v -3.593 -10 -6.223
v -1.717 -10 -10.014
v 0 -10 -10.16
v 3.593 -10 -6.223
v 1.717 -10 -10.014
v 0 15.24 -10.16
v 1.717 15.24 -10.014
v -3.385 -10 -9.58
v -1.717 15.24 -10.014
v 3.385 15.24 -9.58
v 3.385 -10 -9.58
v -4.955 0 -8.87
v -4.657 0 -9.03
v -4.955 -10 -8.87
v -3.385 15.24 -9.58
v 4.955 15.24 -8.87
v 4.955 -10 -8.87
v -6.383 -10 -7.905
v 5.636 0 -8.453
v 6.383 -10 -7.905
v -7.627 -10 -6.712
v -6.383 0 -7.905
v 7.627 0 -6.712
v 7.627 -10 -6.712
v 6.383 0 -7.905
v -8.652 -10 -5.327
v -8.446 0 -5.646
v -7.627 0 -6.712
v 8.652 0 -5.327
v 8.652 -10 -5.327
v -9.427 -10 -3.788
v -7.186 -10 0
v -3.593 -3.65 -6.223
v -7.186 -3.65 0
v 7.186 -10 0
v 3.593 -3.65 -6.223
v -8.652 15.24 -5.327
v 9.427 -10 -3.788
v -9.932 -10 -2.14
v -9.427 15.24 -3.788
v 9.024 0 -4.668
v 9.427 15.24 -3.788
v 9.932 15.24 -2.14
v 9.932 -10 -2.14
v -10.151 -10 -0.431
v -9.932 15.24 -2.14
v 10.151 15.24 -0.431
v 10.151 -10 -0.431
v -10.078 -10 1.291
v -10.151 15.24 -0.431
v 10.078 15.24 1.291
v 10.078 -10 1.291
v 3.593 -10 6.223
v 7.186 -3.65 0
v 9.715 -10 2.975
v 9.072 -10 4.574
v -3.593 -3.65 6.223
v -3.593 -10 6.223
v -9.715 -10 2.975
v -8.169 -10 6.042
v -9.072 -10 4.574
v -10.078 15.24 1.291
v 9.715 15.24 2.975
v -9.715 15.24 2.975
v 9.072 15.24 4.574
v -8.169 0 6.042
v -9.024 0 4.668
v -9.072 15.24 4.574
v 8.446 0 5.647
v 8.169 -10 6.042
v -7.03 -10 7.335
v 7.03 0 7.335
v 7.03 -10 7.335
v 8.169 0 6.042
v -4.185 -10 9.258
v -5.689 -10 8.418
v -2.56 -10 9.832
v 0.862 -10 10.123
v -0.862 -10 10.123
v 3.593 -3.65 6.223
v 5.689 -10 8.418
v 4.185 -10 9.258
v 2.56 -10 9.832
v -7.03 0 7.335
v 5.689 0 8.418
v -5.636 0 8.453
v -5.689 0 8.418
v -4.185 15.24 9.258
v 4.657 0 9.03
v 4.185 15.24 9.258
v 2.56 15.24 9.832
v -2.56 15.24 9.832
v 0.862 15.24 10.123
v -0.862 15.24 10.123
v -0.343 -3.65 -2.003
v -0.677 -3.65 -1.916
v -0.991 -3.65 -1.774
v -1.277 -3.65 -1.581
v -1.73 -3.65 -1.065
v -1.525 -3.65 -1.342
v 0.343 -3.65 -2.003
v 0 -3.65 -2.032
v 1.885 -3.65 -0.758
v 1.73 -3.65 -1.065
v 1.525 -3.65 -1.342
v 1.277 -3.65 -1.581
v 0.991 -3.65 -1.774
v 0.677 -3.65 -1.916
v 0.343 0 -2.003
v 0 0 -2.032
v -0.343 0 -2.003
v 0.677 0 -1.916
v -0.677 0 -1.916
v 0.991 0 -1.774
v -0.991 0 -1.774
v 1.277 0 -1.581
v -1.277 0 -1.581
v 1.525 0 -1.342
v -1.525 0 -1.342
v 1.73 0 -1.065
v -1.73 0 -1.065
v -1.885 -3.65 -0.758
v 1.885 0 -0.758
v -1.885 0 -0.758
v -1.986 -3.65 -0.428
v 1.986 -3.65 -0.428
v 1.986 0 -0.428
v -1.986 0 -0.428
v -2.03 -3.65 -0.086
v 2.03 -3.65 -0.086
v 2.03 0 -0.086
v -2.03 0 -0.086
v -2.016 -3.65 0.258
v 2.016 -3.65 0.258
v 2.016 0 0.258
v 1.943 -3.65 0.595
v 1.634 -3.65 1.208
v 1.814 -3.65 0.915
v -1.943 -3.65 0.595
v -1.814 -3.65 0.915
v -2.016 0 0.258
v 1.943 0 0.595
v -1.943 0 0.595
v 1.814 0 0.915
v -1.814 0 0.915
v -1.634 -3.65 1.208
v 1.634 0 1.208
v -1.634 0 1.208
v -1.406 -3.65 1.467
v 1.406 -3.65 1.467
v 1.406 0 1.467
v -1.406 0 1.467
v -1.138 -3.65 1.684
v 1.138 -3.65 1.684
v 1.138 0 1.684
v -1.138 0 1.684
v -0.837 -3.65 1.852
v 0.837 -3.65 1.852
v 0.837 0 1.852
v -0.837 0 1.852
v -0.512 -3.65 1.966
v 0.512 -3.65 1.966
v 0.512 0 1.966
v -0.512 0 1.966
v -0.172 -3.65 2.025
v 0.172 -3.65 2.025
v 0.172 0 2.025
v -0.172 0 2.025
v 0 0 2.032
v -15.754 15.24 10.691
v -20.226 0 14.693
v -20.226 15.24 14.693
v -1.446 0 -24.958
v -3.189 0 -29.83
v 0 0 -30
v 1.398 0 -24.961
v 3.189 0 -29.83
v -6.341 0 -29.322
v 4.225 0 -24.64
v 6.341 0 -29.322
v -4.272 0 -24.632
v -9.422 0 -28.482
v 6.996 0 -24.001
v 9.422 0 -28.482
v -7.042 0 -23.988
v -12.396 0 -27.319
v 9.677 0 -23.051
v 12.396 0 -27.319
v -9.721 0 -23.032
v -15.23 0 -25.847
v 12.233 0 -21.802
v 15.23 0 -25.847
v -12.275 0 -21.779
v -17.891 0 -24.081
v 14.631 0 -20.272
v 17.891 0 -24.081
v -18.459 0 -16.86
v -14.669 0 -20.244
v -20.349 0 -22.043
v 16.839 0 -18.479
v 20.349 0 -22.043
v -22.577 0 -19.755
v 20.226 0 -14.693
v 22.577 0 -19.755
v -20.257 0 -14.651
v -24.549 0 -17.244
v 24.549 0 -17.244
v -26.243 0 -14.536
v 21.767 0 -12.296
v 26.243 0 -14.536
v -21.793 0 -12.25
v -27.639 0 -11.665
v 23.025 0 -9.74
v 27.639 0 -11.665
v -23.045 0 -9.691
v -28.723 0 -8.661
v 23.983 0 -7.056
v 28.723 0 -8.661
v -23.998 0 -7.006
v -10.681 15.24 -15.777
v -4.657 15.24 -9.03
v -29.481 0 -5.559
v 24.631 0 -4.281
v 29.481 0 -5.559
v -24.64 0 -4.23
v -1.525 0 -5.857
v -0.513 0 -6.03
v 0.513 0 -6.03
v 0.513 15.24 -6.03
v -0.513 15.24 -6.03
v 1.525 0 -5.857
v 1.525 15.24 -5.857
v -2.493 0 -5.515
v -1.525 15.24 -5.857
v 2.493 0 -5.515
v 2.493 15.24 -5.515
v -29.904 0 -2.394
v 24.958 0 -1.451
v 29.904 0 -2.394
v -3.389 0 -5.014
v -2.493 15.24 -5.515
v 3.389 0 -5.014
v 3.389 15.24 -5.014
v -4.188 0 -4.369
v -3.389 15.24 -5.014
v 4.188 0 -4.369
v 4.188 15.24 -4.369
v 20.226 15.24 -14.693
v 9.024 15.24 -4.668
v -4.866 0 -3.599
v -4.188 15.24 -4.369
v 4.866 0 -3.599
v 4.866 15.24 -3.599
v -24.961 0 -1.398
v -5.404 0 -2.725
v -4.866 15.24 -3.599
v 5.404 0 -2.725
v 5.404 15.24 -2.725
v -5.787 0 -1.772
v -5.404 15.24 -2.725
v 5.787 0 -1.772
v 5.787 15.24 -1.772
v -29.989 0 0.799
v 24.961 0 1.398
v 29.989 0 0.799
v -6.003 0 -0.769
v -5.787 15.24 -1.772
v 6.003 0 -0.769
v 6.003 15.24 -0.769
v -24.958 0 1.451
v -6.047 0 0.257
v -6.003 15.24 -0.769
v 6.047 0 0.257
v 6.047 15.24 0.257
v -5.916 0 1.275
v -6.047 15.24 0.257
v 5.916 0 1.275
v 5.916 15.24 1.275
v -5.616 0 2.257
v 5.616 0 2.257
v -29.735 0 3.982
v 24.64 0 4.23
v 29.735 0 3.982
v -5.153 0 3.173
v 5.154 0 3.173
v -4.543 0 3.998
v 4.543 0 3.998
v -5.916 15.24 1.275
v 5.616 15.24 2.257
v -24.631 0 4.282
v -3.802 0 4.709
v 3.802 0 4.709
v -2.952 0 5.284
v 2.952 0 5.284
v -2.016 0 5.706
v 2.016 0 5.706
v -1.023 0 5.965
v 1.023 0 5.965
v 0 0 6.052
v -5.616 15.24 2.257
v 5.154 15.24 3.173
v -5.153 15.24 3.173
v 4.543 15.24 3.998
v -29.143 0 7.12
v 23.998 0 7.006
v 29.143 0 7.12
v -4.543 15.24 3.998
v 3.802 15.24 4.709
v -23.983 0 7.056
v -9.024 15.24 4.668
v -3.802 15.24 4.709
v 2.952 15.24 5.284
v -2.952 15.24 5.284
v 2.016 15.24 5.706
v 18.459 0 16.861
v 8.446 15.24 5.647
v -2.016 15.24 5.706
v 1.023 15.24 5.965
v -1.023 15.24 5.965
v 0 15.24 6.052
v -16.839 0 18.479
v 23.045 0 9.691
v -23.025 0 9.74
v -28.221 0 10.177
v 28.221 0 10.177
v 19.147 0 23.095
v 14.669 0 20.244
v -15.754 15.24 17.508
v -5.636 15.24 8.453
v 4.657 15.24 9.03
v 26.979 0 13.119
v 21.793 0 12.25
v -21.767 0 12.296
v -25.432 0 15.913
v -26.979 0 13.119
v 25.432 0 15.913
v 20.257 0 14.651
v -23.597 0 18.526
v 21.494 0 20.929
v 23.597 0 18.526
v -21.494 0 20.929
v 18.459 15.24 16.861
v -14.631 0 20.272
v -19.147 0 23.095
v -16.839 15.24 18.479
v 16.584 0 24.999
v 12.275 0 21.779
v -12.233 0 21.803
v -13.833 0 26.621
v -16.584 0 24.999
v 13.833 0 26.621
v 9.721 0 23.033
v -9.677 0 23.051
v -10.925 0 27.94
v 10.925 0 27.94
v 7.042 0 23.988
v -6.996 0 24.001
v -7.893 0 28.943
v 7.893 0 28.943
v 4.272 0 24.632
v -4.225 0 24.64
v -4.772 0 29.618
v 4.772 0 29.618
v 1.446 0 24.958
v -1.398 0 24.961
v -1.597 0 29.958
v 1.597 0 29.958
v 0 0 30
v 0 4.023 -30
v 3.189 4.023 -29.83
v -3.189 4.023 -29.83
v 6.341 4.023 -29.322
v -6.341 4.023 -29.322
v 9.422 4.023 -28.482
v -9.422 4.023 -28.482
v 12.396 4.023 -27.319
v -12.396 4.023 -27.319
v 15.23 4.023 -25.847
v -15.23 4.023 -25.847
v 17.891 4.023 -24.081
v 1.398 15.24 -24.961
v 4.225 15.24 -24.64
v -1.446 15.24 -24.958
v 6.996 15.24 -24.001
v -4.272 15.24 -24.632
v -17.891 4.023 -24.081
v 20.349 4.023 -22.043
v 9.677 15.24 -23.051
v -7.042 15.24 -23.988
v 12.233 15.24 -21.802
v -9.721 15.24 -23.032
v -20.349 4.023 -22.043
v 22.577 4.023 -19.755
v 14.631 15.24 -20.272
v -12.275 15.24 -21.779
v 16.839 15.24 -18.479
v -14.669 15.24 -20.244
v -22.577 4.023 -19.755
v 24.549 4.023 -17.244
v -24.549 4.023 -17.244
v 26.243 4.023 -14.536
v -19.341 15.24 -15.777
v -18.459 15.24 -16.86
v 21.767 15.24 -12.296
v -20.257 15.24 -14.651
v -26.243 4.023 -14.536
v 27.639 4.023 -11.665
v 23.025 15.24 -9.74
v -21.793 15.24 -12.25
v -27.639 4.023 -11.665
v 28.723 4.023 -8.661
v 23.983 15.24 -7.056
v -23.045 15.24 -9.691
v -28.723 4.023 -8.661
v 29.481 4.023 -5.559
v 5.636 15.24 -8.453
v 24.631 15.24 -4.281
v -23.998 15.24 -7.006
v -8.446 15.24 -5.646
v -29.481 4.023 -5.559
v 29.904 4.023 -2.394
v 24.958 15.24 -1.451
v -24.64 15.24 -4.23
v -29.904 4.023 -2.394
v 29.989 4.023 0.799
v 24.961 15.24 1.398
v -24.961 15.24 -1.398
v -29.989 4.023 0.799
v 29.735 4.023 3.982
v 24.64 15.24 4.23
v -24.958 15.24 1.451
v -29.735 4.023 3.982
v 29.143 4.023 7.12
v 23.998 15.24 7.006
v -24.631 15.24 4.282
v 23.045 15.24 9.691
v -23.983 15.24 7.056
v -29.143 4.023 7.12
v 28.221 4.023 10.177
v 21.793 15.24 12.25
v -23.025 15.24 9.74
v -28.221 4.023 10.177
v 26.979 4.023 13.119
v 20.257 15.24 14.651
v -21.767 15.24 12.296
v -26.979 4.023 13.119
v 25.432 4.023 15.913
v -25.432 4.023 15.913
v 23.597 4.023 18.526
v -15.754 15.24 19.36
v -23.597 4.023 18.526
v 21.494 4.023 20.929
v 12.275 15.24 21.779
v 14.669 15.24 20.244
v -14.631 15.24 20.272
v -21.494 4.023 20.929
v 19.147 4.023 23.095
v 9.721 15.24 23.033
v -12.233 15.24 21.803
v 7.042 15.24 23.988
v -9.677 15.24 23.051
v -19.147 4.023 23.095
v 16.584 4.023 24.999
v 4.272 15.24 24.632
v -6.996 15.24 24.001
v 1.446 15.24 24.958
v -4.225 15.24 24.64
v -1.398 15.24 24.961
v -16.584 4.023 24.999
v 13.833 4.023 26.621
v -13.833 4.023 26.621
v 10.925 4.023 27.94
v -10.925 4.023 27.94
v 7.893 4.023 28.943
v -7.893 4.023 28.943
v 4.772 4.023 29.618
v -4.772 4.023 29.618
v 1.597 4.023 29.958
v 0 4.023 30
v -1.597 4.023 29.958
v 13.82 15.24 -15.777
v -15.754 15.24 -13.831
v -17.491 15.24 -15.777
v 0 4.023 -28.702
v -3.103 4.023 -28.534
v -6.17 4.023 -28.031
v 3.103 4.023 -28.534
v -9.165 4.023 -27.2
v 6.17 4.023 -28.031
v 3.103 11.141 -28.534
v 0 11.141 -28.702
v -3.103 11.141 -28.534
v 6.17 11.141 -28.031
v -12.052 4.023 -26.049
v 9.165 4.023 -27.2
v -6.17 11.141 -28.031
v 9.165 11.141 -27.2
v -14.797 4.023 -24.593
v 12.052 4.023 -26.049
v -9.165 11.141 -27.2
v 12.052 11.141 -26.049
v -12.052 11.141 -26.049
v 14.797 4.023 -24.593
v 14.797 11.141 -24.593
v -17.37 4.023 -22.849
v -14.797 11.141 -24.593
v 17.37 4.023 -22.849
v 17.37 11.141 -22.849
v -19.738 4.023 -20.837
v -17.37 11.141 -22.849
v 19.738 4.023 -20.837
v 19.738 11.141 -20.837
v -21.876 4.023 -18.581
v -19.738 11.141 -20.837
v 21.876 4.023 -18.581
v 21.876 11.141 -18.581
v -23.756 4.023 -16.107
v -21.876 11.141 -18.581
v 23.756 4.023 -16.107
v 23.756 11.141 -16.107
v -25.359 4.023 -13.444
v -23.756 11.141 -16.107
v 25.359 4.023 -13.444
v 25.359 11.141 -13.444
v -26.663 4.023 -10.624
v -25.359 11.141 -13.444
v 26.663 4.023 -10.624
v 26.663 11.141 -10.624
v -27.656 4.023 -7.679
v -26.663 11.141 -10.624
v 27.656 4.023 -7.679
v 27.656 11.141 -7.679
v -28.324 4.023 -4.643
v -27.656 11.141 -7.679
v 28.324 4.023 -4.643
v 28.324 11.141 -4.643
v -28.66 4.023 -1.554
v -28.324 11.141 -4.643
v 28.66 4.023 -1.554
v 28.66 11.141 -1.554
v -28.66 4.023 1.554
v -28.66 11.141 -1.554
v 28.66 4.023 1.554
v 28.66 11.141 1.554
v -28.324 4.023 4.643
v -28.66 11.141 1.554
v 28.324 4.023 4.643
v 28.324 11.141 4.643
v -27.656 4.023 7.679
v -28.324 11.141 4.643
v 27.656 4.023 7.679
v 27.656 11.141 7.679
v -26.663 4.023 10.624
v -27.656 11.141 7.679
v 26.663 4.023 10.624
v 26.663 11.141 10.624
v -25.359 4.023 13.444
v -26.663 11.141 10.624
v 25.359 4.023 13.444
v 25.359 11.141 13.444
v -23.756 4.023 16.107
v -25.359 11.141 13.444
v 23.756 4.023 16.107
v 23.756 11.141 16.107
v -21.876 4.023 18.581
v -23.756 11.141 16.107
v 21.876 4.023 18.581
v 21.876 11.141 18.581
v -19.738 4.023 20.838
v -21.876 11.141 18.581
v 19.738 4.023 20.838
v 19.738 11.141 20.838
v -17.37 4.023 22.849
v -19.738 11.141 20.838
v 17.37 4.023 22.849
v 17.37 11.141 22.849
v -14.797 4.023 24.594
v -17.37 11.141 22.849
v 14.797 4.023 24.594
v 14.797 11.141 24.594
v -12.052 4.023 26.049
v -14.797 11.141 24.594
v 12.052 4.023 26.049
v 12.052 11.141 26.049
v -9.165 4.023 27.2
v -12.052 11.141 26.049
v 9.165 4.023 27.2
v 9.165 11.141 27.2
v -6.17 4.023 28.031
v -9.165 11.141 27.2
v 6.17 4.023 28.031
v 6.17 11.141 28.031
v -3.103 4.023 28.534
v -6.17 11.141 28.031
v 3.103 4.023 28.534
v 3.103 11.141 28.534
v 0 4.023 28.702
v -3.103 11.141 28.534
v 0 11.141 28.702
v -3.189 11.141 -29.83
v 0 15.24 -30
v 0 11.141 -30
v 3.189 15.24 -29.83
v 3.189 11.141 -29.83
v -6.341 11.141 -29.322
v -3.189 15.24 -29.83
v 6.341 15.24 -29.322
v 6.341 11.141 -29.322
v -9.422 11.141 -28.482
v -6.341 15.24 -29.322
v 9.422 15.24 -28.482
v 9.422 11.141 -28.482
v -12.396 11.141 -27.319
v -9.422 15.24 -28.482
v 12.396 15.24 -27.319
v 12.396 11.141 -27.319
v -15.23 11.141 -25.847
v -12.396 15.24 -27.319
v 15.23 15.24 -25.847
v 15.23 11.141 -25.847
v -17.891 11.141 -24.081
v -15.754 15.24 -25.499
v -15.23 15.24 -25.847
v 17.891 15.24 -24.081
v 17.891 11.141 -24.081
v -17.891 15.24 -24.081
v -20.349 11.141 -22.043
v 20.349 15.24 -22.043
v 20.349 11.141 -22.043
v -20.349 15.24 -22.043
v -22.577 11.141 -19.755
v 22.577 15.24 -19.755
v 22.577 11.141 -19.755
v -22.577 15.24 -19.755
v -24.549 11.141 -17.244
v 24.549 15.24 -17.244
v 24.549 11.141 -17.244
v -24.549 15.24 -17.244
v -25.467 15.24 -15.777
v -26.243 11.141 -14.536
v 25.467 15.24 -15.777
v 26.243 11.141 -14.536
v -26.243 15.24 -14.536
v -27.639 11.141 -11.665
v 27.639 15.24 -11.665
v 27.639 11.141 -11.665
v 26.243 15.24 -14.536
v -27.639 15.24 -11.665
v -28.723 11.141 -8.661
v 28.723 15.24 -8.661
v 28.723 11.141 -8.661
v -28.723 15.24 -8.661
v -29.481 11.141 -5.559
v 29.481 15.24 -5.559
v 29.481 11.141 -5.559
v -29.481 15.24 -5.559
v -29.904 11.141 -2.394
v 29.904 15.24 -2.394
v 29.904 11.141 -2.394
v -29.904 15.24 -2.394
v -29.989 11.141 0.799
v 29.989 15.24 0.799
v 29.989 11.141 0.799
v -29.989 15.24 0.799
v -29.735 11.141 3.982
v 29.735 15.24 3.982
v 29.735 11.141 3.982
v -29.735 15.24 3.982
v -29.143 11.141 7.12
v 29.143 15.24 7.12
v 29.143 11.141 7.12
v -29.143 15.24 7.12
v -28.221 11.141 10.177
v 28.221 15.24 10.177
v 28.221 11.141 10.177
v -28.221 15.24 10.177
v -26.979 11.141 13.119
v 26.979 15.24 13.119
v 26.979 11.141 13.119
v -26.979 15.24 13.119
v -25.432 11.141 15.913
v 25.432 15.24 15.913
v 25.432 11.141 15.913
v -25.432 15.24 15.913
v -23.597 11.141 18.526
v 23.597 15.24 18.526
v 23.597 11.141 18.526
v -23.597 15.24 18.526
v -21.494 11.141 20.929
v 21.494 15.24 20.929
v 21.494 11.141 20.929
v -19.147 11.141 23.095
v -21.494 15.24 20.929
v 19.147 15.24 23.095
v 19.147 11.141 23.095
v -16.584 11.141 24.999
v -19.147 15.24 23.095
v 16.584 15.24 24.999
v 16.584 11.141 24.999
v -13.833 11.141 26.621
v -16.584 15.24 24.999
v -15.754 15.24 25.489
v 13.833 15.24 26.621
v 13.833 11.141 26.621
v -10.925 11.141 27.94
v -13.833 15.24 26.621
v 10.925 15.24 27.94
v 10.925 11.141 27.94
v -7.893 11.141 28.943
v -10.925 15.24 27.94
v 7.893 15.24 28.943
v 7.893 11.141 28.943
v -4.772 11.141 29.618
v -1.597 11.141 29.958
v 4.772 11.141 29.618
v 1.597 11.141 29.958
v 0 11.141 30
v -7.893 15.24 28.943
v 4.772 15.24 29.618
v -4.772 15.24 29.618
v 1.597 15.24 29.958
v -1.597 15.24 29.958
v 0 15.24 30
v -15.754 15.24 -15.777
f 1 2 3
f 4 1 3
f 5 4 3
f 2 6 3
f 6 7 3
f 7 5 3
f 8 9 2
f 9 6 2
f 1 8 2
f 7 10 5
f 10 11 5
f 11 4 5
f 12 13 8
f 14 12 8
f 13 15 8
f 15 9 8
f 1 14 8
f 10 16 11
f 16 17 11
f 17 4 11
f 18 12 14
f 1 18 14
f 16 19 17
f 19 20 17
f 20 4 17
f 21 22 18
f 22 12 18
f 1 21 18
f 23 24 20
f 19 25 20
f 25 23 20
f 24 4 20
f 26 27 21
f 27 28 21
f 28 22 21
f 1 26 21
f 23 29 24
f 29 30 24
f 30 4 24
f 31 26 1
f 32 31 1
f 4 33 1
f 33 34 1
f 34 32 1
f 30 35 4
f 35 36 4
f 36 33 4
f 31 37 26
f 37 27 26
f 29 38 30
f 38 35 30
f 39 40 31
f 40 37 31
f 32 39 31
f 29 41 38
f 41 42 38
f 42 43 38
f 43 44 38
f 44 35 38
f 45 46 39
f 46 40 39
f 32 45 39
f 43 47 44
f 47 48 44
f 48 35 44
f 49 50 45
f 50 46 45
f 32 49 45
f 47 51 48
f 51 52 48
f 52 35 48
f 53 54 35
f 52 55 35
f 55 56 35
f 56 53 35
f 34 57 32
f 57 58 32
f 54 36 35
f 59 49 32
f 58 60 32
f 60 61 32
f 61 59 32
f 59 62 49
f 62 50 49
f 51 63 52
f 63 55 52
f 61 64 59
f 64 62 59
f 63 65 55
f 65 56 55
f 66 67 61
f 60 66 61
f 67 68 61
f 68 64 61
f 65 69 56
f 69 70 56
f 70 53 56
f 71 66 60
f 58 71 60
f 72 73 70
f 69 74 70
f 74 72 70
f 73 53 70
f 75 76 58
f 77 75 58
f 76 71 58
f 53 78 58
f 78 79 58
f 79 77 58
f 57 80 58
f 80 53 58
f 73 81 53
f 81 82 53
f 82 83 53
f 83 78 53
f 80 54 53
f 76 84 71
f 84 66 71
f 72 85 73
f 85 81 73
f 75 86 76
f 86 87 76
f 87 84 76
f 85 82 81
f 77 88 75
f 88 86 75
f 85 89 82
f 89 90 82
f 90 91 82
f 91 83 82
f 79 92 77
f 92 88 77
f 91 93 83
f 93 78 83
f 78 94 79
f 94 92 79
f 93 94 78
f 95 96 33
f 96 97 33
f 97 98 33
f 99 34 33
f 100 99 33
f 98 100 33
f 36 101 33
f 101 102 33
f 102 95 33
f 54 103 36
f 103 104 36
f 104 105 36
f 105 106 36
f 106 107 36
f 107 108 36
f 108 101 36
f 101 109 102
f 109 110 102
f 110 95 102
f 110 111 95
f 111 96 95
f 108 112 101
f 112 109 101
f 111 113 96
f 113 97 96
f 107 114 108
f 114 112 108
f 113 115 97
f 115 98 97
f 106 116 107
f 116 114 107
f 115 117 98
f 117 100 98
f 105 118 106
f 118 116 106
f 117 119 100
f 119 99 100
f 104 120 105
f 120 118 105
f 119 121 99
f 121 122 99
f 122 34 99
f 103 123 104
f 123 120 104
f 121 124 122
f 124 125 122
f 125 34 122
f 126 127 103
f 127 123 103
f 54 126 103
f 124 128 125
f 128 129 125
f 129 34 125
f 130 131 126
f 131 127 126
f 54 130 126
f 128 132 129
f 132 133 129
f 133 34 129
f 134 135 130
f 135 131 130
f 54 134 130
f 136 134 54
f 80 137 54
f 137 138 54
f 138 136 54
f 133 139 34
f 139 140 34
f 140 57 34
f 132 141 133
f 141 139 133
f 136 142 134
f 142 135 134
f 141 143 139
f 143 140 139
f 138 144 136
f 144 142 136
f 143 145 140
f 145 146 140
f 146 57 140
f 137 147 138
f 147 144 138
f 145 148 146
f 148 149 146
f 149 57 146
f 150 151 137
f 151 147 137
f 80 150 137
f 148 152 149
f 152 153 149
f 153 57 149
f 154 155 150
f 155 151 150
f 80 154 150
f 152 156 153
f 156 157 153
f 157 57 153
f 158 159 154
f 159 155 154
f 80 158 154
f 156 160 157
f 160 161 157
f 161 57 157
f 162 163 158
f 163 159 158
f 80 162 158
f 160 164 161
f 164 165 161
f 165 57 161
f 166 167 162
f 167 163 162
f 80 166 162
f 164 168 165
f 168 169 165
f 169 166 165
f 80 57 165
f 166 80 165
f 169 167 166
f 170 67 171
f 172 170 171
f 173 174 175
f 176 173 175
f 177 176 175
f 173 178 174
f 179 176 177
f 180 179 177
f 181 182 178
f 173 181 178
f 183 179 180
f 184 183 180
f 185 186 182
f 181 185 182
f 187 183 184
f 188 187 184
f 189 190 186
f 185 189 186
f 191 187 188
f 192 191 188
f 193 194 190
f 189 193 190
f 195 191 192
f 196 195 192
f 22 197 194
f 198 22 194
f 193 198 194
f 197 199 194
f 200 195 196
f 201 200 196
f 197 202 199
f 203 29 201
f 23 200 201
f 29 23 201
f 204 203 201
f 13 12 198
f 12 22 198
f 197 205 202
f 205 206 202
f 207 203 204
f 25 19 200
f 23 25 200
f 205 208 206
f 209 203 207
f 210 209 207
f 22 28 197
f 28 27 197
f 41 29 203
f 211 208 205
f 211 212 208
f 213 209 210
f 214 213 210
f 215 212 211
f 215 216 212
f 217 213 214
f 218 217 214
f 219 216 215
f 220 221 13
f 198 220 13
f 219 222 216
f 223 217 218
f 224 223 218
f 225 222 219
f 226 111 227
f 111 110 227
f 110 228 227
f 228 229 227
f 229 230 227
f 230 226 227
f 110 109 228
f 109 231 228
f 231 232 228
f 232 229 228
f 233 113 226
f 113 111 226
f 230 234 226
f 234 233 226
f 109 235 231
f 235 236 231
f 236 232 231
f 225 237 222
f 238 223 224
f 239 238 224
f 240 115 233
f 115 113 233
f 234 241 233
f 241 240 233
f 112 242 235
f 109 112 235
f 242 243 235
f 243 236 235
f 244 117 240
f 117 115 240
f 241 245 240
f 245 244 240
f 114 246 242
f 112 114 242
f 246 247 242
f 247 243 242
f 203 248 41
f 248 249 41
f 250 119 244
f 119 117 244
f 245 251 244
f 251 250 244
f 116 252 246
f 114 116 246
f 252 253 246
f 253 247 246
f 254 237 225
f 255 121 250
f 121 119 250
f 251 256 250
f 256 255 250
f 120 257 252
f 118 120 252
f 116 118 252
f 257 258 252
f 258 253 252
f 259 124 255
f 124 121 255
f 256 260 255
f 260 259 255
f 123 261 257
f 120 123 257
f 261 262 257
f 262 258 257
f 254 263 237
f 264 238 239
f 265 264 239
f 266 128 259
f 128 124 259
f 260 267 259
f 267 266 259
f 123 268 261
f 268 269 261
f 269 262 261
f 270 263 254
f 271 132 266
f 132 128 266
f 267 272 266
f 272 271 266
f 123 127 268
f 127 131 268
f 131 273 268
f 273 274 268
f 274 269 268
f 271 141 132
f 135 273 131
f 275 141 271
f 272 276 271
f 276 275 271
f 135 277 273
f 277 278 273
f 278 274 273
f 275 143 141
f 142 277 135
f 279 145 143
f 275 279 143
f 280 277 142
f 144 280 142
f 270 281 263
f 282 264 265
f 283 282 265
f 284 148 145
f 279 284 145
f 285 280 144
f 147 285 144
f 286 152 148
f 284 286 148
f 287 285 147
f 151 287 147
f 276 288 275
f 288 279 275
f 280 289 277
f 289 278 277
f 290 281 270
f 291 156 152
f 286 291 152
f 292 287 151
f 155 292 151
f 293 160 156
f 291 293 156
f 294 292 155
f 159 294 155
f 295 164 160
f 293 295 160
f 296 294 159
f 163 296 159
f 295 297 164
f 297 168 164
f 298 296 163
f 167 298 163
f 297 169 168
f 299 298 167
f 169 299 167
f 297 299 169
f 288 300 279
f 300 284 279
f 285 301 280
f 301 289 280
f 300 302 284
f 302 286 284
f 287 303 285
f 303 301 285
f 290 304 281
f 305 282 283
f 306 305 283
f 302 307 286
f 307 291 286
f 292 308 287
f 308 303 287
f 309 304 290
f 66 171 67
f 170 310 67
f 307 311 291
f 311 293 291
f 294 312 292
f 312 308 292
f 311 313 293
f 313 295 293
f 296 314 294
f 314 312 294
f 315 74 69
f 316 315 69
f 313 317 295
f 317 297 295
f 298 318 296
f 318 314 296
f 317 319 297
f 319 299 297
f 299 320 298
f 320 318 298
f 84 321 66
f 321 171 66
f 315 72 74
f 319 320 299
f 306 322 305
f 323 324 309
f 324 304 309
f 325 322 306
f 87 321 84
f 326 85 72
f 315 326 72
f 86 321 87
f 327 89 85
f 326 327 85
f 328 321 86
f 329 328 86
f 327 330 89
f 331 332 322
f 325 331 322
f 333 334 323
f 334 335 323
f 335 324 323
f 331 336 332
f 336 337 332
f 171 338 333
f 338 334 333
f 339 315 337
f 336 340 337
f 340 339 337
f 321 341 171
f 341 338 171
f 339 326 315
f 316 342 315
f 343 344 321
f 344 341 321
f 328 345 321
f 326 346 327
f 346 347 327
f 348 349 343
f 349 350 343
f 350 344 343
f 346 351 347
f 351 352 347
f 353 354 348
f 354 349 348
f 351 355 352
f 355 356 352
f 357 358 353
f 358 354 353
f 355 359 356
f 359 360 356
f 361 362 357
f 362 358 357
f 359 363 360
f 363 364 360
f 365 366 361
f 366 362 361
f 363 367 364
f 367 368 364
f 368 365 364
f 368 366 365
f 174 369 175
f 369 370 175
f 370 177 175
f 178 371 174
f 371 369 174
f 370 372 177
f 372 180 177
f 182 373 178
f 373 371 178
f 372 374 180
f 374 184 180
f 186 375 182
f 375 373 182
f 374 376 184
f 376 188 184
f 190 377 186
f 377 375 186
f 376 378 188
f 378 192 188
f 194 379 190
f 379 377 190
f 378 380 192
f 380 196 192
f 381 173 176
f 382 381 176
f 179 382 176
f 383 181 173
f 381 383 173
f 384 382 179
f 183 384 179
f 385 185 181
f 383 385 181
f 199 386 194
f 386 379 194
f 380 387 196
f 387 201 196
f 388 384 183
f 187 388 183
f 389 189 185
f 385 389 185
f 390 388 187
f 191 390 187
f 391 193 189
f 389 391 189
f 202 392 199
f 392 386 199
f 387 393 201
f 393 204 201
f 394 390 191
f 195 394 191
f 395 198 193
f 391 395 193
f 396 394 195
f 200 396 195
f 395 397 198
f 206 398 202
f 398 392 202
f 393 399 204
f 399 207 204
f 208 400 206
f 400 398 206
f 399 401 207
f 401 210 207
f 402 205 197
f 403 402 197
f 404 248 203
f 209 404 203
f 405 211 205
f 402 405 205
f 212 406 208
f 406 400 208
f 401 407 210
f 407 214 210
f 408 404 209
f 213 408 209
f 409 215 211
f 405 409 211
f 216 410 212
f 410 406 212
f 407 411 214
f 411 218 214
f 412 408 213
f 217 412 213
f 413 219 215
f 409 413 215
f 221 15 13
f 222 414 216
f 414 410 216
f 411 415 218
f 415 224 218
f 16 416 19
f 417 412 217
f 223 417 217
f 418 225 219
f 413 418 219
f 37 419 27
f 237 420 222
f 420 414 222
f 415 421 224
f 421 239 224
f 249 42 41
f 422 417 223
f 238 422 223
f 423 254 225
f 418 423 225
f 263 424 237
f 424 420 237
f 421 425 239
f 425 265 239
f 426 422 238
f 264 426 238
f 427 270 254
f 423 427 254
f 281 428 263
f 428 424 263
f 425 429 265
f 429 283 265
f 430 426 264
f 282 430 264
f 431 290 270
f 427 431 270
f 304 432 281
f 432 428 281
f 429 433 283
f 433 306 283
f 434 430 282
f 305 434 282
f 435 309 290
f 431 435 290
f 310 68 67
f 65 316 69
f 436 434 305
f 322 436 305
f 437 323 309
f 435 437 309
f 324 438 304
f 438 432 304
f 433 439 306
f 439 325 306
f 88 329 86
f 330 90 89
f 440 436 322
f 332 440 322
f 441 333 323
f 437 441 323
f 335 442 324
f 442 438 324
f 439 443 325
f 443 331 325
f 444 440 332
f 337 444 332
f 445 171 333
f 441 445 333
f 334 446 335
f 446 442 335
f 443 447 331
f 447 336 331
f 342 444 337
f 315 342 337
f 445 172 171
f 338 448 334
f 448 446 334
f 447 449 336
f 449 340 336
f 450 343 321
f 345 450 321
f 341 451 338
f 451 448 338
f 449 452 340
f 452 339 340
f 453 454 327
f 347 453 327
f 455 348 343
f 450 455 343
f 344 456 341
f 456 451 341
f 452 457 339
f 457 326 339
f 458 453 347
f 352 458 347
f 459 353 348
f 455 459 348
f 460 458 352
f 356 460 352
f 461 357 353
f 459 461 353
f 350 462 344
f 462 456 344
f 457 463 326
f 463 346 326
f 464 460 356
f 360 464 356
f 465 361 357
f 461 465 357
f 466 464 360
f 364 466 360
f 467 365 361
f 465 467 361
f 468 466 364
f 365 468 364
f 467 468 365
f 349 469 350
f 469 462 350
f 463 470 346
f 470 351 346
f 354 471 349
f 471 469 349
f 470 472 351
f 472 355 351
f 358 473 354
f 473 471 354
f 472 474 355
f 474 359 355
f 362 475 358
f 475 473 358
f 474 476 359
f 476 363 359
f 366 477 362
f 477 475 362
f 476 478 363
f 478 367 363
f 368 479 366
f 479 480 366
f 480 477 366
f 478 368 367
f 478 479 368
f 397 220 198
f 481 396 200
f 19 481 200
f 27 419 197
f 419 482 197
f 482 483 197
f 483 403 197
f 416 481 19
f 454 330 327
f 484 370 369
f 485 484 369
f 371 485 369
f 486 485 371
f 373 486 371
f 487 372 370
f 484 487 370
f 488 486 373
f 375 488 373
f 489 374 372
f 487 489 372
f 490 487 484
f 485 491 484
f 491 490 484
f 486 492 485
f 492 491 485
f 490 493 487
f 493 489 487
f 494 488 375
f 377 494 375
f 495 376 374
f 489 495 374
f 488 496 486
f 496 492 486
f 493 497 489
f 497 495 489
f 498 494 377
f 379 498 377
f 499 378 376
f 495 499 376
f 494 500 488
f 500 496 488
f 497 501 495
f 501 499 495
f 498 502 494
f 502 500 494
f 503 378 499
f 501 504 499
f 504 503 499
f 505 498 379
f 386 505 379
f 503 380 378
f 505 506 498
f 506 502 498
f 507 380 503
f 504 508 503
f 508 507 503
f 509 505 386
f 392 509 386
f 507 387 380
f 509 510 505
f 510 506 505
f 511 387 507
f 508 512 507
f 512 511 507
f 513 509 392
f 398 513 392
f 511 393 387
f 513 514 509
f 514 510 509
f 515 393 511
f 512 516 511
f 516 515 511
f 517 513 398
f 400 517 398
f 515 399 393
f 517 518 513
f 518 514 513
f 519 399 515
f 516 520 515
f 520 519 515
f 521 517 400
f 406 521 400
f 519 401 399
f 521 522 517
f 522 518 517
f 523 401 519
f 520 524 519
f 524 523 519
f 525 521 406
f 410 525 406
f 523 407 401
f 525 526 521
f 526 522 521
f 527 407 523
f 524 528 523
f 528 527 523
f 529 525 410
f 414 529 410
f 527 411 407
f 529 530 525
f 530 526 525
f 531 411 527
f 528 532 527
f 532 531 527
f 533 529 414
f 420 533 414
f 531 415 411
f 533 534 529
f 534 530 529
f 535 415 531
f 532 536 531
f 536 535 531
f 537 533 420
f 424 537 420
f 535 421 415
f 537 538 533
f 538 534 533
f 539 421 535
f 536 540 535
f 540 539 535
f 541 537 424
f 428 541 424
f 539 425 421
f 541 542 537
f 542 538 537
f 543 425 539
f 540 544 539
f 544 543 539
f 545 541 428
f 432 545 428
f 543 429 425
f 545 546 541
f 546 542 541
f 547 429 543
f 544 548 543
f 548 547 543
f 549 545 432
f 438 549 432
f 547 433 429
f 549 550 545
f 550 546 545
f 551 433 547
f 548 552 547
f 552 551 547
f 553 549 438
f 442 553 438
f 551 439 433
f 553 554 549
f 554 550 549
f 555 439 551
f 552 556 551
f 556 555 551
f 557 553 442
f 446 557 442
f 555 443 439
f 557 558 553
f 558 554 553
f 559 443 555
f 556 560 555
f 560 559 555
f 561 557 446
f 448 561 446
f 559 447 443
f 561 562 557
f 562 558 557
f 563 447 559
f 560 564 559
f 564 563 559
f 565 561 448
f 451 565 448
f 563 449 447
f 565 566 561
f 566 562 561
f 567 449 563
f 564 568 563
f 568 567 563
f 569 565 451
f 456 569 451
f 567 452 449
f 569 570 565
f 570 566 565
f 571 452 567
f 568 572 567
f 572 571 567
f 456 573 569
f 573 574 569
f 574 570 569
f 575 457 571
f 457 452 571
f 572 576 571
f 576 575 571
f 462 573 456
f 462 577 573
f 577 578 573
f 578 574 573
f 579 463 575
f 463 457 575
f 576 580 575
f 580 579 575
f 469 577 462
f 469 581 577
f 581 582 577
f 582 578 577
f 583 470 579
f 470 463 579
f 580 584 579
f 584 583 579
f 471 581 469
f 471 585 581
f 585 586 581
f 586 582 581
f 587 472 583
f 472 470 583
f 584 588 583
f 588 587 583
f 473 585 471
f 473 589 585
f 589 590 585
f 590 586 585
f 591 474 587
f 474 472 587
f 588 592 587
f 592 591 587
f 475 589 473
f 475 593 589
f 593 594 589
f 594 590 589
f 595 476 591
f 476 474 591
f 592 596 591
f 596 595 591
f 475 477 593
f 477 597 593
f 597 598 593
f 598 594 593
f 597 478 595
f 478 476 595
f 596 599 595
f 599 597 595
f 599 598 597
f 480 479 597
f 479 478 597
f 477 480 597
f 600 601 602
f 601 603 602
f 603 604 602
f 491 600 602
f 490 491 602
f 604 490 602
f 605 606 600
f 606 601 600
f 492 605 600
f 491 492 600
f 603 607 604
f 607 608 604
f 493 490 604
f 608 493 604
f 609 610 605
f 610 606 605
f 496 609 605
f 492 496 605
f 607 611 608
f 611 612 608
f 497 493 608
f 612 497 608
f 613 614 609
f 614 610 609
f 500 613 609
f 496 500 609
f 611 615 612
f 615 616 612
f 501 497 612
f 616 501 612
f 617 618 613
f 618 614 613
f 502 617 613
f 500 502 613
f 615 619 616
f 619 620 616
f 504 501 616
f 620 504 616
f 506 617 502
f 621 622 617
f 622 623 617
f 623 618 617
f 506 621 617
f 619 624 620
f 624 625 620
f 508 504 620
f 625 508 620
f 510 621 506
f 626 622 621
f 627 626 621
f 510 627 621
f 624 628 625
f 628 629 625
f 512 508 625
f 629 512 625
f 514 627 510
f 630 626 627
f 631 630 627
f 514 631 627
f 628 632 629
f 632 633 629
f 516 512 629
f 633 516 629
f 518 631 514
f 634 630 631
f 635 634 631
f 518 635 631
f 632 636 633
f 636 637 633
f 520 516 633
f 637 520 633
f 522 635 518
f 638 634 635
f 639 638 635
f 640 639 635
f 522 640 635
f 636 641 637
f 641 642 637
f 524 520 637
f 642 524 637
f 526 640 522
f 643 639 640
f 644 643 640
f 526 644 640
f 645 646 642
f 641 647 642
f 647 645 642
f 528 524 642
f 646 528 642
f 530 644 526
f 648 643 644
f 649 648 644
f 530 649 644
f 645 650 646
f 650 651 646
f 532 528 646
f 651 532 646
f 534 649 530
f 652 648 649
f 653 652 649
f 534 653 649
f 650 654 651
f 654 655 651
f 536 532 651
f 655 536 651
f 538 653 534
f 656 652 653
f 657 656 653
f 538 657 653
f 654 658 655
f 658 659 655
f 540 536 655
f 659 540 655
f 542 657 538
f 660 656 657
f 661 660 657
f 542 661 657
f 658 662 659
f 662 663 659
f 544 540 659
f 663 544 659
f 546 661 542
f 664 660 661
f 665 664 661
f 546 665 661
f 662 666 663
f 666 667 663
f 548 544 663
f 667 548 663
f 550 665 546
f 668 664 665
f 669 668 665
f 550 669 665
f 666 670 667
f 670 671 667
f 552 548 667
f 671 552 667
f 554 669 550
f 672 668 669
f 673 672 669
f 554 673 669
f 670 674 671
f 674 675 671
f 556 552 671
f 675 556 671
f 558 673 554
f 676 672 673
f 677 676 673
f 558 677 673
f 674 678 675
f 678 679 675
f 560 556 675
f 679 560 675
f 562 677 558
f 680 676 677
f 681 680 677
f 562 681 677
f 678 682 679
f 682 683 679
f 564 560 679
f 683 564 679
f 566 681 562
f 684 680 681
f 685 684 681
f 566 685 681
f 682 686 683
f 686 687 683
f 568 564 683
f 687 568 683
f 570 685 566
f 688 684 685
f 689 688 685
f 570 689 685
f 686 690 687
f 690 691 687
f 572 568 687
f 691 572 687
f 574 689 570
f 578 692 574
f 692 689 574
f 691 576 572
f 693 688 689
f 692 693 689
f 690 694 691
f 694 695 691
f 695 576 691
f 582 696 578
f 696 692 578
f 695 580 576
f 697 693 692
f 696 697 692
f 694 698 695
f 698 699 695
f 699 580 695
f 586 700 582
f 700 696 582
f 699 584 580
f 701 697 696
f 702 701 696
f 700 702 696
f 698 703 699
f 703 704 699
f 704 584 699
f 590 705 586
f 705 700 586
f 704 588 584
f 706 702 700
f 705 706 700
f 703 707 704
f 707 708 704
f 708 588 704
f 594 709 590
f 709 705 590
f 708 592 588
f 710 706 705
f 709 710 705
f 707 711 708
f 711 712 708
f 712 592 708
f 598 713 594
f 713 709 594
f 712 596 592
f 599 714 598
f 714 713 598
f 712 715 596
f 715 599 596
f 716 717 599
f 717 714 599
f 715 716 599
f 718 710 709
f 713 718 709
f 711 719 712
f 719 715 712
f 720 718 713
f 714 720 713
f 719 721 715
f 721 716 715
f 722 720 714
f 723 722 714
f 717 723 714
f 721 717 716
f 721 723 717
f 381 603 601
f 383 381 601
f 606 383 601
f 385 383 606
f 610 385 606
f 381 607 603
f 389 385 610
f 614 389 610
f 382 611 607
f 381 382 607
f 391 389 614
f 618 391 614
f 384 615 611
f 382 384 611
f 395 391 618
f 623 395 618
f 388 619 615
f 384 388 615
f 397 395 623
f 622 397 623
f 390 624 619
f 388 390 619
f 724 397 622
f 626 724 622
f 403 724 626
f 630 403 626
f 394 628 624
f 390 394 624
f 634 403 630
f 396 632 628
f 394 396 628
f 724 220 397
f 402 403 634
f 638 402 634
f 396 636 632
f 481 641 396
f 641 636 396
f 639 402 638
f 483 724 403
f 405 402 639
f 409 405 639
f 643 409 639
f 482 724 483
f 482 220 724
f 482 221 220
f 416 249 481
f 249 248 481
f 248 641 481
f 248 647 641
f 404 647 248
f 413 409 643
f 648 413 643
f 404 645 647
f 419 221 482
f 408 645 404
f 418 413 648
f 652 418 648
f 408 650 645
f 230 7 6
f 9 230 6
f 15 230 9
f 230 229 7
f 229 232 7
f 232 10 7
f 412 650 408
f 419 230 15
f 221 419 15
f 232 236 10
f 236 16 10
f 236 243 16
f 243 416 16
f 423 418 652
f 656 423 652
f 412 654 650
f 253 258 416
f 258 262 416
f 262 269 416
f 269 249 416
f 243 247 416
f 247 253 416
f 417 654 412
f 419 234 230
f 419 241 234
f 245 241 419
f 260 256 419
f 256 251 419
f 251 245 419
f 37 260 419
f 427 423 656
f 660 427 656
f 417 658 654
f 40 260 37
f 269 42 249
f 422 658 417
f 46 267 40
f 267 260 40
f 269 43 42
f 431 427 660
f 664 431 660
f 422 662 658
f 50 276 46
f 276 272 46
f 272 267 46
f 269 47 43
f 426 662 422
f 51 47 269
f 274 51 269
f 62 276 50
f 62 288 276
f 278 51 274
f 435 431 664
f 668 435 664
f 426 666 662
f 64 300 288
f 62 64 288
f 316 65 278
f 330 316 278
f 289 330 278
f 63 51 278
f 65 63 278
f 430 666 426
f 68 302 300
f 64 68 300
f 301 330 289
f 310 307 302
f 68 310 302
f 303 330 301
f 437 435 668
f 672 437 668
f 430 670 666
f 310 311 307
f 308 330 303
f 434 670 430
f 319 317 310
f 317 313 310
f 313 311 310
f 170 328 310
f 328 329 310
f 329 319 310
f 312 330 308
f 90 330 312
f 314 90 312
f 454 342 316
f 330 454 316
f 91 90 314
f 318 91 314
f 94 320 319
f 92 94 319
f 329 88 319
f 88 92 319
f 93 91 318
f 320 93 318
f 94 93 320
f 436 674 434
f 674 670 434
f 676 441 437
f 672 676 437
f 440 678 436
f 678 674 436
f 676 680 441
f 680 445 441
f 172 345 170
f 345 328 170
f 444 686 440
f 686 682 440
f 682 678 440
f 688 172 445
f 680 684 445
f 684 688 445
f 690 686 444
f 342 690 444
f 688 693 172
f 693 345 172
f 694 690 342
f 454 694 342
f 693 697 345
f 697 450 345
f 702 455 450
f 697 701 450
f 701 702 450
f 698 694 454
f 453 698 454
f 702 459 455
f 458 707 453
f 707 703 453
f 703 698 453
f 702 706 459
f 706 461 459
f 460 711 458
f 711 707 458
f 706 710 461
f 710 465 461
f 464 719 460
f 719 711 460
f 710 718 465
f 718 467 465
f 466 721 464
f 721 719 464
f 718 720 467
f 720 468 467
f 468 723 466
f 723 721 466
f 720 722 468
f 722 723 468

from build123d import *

# Parameters (mm, degrees)
SKETCH1_R                = 30
SKETCH1_R_2              = 25
BOSS_EXTRUDE1_DEPTH      = 15.24
BOSS_EXTRUDE2_DEPTH      = 15.24
SKETCH3_R                = 10.16
BOSS_EXTRUDE3_DEPTH      = 10
BOSS_EXTRUDE3_DEPTH_BACK = 15.24
SKETCH14_R               = 38.1
SKETCH14_R_2             = 28.702
CUT_EXTRUDE1_DEPTH       = 0.89229946
CUT_EXTRUDE1_DEPTH_BACK  = 6.22629946
CUT_EXTRUDE2_DEPTH       = 6.35
SKETCH19_R               = 2.032
CUT_EXTRUDE3_DEPTH       = 18.89
SKETCH20_R               = 6.052064437
CUT_EXTRUDE4_DEPTH       = 15.24


with BuildPart() as part:
    # Sketch1 → Boss-Extrude1 (new body)
    with BuildSketch(Plane(origin=(0, 0, 0), x_dir=(1, 0, 0), z_dir=(0, 1, 0))):
        Circle(SKETCH1_R)
        Circle(SKETCH1_R_2, mode=Mode.SUBTRACT)
    extrude(amount=BOSS_EXTRUDE1_DEPTH)

    # Sketch2 → Boss-Extrude2 (add)
    with BuildSketch(Plane(origin=(0, 15.24, 0), x_dir=(1, 0, 0), z_dir=(0, 1, 0))):
        Polygon((3.584352377, -0.200805771), (0.201044225, 3.588608735), (-3.584352377, 0.200805771), (-0.201044225, -3.588608735), align=None)
        with BuildLine():
            ThreePointArc((20.22640903, 14.693276617), (18.628907162, 16.672246937), (16.838608452, 18.478670552))
            Line((16.838608452, 18.478670552), (0.201044225, 3.588608735))
            Line((0.201044225, 3.588608735), (3.584352377, -0.200805771))
            Line((3.584352377, -0.200805771), (20.22640903, 14.693276617))
        make_face()
        with BuildLine():
            Line((-3.584352377, 0.200805771), (0.201044225, 3.588608735))
            Line((0.201044225, 3.588608735), (-14.669262011, 20.243832445))
            ThreePointArc((-14.669262011, 20.243832445), (-16.650126818, 18.648680301), (-18.458673848, 16.860526676))
            Line((-18.458673848, 16.860526676), (-3.584352377, 0.200805771))
        make_face()
        with BuildLine():
            Line((-0.201044225, -3.588608735), (-3.584352377, 0.200805771))
            Line((-3.584352377, 0.200805771), (-20.22640903, -14.693276617))
            ThreePointArc((-20.22640903, -14.693276617), (-18.628907162, -16.672246937), (-16.838608452, -18.478670552))
            Line((-16.838608452, -18.478670552), (-0.201044225, -3.588608735))
        make_face()
        with BuildLine():
            Line((18.458673848, -16.860526676), (3.584352377, -0.200805771))
            Line((3.584352377, -0.200805771), (-0.201044225, -3.588608735))
            Line((-0.201044225, -3.588608735), (14.669262011, -20.243832445))
            ThreePointArc((14.669262011, -20.243832445), (16.650126818, -18.648680301), (18.458673848, -16.860526676))
        make_face()
    extrude(amount=-BOSS_EXTRUDE2_DEPTH)

    # Sketch3 → Boss-Extrude3 (add, two sides)
    with BuildSketch(Plane(origin=(0, 0, 0), x_dir=(-1, 0, 0), z_dir=(0, -1, 0))) as boss_extrude3_sk:
        Circle(SKETCH3_R)
    extrude(amount=BOSS_EXTRUDE3_DEPTH)
    extrude(boss_extrude3_sk.sketch, amount=-BOSS_EXTRUDE3_DEPTH_BACK)

    # Sketch14 → Cut-Extrude1 (cut, two sides)
    with BuildSketch(Plane(origin=(0, 10.2489, 0), x_dir=(1, 0, 0), z_dir=(0, 1, 0))) as cut_extrude1_sk:
        Circle(SKETCH14_R)
        Circle(SKETCH14_R_2, mode=Mode.SUBTRACT)
    extrude(amount=CUT_EXTRUDE1_DEPTH, mode=Mode.SUBTRACT)
    extrude(cut_extrude1_sk.sketch, amount=-CUT_EXTRUDE1_DEPTH_BACK, mode=Mode.SUBTRACT)

    # Sketch18 → Cut-Extrude2 (cut)
    with BuildSketch(Plane.XZ.offset(10)):
        Polygon((7.18570145, 0), (3.592850725, 6.223), (-3.592850725, 6.223), (-7.18570145, 0), (-3.592850725, -6.223), (3.592850725, -6.223), align=None)
    extrude(amount=-CUT_EXTRUDE2_DEPTH, mode=Mode.SUBTRACT)

    # Sketch19 → Cut-Extrude3 (cut)
    with BuildSketch(Plane.XZ.offset(3.65)):
        Circle(SKETCH19_R)
    extrude(amount=-CUT_EXTRUDE3_DEPTH, mode=Mode.SUBTRACT)

    # Sketch20 → Cut-Extrude4 (cut)
    with BuildSketch(Plane(origin=(0, 15.24, 0), x_dir=(1, 0, 0), z_dir=(0, 1, 0))):
        Circle(SKETCH20_R)
    extrude(amount=-CUT_EXTRUDE4_DEPTH, mode=Mode.SUBTRACT)


solid = part.part
